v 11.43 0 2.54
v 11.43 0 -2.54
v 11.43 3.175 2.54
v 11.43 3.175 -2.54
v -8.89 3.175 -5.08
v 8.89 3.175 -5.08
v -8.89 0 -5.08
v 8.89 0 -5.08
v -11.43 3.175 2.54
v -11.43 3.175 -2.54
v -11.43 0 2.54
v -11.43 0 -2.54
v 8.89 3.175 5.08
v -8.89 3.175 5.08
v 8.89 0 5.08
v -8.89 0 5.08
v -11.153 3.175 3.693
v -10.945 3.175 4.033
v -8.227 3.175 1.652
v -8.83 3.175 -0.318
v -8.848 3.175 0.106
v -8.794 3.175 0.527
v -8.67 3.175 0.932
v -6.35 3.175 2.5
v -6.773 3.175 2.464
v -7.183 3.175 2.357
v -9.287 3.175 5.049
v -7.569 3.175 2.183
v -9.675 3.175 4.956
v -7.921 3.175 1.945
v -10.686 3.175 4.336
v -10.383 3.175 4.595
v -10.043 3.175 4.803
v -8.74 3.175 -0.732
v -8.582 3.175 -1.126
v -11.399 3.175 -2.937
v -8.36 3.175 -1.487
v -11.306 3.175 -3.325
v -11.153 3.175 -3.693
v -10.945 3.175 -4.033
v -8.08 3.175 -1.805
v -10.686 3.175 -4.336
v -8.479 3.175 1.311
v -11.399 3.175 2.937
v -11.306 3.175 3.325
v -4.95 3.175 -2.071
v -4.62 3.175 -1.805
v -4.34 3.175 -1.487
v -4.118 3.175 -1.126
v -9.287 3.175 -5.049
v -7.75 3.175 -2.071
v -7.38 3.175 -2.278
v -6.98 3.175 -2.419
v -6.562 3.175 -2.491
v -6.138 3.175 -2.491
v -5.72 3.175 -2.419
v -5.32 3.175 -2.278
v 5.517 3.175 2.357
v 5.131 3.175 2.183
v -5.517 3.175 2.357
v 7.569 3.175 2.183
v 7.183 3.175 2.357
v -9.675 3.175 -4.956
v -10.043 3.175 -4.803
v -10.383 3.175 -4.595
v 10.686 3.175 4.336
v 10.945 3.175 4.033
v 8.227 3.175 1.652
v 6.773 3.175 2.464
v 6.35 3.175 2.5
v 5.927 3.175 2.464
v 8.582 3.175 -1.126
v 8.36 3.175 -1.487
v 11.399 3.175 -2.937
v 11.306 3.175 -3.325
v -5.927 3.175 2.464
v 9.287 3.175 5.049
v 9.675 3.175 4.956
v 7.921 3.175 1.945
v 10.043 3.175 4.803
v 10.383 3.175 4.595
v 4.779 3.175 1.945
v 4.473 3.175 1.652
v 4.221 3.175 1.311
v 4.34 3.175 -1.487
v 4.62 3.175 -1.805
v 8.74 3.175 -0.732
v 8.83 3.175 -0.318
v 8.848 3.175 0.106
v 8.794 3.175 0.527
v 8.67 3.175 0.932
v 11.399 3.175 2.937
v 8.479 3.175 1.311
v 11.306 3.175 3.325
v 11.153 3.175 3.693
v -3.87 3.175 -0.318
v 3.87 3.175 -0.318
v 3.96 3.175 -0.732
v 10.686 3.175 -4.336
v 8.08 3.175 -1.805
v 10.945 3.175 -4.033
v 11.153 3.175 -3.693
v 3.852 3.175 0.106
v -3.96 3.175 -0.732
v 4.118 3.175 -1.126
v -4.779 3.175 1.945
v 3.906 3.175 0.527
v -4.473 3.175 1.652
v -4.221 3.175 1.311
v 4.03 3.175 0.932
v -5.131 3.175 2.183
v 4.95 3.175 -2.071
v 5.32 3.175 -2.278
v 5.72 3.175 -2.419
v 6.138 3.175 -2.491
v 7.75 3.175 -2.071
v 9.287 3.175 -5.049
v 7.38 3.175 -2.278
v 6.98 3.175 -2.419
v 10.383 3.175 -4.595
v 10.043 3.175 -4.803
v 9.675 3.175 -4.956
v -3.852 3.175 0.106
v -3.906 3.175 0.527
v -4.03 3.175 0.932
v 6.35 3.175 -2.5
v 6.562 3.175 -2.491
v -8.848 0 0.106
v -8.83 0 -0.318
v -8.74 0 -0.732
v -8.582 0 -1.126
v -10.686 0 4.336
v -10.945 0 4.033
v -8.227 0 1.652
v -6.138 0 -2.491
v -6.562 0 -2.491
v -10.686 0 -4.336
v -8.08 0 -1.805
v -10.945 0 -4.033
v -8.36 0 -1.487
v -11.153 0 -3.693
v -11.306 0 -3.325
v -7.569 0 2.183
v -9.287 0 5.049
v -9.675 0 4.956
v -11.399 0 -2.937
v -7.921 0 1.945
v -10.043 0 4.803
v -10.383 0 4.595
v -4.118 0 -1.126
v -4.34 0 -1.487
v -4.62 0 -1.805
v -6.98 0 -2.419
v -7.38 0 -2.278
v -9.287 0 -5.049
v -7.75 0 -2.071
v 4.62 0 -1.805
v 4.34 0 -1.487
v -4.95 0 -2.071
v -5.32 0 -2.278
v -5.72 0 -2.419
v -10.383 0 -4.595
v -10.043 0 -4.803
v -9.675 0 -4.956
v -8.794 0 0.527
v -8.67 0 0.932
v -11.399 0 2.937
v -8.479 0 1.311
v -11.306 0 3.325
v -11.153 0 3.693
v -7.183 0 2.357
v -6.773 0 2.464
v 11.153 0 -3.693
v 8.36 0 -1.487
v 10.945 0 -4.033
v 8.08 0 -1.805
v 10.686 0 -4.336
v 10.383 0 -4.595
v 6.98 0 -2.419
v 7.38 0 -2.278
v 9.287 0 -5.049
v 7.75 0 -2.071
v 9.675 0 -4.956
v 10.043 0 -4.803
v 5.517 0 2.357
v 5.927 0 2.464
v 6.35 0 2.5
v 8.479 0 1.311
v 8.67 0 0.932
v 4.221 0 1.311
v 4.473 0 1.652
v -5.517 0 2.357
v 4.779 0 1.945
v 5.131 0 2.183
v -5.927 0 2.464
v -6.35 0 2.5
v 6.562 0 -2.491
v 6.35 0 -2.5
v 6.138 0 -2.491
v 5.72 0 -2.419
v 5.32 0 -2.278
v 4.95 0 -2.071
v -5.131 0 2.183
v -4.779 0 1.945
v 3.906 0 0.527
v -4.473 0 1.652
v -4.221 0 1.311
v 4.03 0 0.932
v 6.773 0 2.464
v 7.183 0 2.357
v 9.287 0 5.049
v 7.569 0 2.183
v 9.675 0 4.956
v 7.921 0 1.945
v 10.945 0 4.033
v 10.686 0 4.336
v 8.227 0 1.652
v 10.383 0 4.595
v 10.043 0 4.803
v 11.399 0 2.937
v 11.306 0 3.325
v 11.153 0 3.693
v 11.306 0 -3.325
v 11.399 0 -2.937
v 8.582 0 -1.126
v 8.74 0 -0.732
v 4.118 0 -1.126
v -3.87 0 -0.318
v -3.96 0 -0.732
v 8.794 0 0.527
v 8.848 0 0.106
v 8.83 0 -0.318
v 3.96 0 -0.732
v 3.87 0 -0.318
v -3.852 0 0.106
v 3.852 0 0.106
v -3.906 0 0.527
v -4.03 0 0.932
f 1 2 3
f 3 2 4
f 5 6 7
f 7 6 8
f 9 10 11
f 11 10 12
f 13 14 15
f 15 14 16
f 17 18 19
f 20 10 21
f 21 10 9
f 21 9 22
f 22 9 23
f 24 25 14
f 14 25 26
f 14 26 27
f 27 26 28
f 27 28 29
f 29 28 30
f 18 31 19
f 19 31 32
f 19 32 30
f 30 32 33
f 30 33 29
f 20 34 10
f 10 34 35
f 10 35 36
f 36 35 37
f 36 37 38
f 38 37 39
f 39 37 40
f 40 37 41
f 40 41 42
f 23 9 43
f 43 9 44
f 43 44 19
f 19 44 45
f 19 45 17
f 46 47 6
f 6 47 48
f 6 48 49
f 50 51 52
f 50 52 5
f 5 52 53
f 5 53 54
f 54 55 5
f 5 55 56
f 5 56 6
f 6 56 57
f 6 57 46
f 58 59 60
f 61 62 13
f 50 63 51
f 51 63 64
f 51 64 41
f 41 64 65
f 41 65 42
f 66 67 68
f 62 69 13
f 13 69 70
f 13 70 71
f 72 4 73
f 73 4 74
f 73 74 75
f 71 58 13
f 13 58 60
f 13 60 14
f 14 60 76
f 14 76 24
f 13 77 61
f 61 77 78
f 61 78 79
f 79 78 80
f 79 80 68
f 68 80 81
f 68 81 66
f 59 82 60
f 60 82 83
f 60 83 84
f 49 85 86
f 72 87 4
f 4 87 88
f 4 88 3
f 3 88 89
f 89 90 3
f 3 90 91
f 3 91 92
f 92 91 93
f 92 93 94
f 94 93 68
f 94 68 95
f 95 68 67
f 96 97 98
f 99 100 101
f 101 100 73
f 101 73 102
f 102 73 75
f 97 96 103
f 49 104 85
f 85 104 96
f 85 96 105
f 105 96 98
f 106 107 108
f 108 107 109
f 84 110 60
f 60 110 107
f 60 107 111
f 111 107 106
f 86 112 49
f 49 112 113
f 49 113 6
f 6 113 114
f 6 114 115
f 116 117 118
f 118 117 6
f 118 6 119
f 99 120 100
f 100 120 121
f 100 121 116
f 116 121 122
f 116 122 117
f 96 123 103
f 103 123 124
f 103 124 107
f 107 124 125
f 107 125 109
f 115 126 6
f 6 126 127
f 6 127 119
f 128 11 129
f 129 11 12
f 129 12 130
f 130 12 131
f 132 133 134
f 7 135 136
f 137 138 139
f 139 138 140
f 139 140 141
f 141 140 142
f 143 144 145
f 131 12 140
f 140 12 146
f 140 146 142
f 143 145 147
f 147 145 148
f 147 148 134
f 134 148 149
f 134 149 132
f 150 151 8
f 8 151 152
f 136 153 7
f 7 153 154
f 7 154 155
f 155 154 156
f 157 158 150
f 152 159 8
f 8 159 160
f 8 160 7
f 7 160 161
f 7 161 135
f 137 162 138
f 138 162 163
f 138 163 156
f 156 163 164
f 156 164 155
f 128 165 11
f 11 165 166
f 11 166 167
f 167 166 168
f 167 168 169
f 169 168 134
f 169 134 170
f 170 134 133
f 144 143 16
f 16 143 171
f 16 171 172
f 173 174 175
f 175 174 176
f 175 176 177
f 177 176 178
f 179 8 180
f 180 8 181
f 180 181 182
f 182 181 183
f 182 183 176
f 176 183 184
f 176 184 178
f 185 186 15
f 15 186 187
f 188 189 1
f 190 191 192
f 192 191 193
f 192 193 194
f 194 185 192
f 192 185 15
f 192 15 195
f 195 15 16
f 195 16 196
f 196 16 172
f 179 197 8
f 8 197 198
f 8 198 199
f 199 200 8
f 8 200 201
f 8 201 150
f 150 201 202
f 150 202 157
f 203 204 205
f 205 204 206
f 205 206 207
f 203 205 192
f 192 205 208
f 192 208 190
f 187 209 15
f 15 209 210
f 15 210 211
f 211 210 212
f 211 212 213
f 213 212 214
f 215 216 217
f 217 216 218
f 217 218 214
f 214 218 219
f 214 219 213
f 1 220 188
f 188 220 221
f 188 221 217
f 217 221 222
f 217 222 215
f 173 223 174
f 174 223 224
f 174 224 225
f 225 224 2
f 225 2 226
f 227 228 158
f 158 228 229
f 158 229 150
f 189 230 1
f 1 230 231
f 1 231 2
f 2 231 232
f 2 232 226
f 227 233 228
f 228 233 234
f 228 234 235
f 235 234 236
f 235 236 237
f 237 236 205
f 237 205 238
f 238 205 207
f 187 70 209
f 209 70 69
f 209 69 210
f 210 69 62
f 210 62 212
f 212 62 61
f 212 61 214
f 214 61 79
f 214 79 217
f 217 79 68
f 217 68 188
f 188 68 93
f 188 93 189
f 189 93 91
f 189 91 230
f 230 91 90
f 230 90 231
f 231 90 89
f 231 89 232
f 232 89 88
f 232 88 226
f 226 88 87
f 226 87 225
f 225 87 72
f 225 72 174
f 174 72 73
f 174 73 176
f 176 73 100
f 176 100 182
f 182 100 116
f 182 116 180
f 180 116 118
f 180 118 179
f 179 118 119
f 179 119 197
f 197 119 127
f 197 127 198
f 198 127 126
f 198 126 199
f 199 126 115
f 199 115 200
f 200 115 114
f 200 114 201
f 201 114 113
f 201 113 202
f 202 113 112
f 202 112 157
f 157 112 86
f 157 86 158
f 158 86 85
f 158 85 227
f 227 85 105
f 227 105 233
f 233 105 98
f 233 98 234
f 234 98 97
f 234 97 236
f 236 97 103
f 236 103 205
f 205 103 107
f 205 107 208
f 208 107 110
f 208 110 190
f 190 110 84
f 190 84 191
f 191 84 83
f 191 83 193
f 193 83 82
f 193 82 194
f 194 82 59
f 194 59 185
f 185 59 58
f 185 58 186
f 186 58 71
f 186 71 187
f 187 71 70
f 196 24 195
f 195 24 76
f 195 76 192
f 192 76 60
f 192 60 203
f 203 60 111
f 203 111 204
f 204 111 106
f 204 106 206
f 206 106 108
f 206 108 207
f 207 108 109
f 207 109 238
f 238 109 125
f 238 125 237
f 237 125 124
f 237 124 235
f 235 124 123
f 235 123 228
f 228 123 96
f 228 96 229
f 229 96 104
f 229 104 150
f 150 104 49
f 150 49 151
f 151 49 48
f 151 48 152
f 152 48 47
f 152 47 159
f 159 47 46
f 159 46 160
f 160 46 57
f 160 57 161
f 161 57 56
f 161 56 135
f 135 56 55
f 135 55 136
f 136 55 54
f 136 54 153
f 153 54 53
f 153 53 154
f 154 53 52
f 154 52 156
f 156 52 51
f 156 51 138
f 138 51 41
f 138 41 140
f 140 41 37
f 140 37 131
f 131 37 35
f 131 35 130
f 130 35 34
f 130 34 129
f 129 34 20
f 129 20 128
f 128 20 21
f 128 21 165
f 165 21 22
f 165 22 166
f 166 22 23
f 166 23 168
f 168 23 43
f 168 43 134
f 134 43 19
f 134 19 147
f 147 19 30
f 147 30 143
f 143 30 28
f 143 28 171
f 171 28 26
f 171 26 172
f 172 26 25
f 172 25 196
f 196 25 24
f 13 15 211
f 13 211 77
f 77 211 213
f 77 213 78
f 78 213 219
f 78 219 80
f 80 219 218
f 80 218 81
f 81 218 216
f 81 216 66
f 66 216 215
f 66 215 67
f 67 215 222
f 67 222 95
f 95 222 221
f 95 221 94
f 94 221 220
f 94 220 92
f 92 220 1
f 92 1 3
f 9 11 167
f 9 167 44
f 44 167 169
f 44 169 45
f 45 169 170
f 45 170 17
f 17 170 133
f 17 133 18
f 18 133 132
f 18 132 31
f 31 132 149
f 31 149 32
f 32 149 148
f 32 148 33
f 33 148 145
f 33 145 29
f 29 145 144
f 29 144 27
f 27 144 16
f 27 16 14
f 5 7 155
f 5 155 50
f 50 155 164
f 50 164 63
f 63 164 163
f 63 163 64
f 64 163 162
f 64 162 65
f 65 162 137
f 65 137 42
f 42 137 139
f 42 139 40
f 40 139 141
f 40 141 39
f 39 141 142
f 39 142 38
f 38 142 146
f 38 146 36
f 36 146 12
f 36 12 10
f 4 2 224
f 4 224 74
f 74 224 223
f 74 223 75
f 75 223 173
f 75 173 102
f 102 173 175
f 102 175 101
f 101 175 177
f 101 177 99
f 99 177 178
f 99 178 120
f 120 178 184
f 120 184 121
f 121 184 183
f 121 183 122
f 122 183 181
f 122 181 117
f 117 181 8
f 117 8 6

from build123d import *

# Parameters (mm, degrees)
SKETCH1_W           = 22.86
SKETCH1_H           = 10.16
BOSS_EXTRUDE1_DEPTH = 3.175
SKETCH2_R           = 2.5
CUT_EXTRUDE1_DEPTH  = 4.175
FILLET1_R           = 2.54


with BuildPart() as part:
    # Sketch1 → Boss-Extrude1 (new body)
    with BuildSketch(Plane(origin=(0, 0, 0), x_dir=(1, 0, 0), z_dir=(0, 1, 0))):
        Rectangle(SKETCH1_W, SKETCH1_H)
    extrude(amount=BOSS_EXTRUDE1_DEPTH)

    # Sketch2 → Cut-Extrude1 (cut, through all)
    with BuildSketch(Plane(origin=(0, 3.175, 0), x_dir=(1, 0, 0), z_dir=(0, 1, 0))):
        with Locations((-6.35, 0)):
            Circle(SKETCH2_R)
        with Locations((6.35, 0)):
            Circle(SKETCH2_R)
    extrude(amount=-CUT_EXTRUDE1_DEPTH, mode=Mode.SUBTRACT)

    # Fillet1
    fillet1_edges = [part.edges().sort_by_distance(p)[0] for p in [
        (11.43, 1.5875, 5.08),
        (-11.43, 1.5875, 5.08),
        (-11.43, 1.5875, -5.08),
        (11.43, 1.5875, -5.08),
    ]]
    fillet(fillet1_edges, radius=FILLET1_R)


solid = part.part
